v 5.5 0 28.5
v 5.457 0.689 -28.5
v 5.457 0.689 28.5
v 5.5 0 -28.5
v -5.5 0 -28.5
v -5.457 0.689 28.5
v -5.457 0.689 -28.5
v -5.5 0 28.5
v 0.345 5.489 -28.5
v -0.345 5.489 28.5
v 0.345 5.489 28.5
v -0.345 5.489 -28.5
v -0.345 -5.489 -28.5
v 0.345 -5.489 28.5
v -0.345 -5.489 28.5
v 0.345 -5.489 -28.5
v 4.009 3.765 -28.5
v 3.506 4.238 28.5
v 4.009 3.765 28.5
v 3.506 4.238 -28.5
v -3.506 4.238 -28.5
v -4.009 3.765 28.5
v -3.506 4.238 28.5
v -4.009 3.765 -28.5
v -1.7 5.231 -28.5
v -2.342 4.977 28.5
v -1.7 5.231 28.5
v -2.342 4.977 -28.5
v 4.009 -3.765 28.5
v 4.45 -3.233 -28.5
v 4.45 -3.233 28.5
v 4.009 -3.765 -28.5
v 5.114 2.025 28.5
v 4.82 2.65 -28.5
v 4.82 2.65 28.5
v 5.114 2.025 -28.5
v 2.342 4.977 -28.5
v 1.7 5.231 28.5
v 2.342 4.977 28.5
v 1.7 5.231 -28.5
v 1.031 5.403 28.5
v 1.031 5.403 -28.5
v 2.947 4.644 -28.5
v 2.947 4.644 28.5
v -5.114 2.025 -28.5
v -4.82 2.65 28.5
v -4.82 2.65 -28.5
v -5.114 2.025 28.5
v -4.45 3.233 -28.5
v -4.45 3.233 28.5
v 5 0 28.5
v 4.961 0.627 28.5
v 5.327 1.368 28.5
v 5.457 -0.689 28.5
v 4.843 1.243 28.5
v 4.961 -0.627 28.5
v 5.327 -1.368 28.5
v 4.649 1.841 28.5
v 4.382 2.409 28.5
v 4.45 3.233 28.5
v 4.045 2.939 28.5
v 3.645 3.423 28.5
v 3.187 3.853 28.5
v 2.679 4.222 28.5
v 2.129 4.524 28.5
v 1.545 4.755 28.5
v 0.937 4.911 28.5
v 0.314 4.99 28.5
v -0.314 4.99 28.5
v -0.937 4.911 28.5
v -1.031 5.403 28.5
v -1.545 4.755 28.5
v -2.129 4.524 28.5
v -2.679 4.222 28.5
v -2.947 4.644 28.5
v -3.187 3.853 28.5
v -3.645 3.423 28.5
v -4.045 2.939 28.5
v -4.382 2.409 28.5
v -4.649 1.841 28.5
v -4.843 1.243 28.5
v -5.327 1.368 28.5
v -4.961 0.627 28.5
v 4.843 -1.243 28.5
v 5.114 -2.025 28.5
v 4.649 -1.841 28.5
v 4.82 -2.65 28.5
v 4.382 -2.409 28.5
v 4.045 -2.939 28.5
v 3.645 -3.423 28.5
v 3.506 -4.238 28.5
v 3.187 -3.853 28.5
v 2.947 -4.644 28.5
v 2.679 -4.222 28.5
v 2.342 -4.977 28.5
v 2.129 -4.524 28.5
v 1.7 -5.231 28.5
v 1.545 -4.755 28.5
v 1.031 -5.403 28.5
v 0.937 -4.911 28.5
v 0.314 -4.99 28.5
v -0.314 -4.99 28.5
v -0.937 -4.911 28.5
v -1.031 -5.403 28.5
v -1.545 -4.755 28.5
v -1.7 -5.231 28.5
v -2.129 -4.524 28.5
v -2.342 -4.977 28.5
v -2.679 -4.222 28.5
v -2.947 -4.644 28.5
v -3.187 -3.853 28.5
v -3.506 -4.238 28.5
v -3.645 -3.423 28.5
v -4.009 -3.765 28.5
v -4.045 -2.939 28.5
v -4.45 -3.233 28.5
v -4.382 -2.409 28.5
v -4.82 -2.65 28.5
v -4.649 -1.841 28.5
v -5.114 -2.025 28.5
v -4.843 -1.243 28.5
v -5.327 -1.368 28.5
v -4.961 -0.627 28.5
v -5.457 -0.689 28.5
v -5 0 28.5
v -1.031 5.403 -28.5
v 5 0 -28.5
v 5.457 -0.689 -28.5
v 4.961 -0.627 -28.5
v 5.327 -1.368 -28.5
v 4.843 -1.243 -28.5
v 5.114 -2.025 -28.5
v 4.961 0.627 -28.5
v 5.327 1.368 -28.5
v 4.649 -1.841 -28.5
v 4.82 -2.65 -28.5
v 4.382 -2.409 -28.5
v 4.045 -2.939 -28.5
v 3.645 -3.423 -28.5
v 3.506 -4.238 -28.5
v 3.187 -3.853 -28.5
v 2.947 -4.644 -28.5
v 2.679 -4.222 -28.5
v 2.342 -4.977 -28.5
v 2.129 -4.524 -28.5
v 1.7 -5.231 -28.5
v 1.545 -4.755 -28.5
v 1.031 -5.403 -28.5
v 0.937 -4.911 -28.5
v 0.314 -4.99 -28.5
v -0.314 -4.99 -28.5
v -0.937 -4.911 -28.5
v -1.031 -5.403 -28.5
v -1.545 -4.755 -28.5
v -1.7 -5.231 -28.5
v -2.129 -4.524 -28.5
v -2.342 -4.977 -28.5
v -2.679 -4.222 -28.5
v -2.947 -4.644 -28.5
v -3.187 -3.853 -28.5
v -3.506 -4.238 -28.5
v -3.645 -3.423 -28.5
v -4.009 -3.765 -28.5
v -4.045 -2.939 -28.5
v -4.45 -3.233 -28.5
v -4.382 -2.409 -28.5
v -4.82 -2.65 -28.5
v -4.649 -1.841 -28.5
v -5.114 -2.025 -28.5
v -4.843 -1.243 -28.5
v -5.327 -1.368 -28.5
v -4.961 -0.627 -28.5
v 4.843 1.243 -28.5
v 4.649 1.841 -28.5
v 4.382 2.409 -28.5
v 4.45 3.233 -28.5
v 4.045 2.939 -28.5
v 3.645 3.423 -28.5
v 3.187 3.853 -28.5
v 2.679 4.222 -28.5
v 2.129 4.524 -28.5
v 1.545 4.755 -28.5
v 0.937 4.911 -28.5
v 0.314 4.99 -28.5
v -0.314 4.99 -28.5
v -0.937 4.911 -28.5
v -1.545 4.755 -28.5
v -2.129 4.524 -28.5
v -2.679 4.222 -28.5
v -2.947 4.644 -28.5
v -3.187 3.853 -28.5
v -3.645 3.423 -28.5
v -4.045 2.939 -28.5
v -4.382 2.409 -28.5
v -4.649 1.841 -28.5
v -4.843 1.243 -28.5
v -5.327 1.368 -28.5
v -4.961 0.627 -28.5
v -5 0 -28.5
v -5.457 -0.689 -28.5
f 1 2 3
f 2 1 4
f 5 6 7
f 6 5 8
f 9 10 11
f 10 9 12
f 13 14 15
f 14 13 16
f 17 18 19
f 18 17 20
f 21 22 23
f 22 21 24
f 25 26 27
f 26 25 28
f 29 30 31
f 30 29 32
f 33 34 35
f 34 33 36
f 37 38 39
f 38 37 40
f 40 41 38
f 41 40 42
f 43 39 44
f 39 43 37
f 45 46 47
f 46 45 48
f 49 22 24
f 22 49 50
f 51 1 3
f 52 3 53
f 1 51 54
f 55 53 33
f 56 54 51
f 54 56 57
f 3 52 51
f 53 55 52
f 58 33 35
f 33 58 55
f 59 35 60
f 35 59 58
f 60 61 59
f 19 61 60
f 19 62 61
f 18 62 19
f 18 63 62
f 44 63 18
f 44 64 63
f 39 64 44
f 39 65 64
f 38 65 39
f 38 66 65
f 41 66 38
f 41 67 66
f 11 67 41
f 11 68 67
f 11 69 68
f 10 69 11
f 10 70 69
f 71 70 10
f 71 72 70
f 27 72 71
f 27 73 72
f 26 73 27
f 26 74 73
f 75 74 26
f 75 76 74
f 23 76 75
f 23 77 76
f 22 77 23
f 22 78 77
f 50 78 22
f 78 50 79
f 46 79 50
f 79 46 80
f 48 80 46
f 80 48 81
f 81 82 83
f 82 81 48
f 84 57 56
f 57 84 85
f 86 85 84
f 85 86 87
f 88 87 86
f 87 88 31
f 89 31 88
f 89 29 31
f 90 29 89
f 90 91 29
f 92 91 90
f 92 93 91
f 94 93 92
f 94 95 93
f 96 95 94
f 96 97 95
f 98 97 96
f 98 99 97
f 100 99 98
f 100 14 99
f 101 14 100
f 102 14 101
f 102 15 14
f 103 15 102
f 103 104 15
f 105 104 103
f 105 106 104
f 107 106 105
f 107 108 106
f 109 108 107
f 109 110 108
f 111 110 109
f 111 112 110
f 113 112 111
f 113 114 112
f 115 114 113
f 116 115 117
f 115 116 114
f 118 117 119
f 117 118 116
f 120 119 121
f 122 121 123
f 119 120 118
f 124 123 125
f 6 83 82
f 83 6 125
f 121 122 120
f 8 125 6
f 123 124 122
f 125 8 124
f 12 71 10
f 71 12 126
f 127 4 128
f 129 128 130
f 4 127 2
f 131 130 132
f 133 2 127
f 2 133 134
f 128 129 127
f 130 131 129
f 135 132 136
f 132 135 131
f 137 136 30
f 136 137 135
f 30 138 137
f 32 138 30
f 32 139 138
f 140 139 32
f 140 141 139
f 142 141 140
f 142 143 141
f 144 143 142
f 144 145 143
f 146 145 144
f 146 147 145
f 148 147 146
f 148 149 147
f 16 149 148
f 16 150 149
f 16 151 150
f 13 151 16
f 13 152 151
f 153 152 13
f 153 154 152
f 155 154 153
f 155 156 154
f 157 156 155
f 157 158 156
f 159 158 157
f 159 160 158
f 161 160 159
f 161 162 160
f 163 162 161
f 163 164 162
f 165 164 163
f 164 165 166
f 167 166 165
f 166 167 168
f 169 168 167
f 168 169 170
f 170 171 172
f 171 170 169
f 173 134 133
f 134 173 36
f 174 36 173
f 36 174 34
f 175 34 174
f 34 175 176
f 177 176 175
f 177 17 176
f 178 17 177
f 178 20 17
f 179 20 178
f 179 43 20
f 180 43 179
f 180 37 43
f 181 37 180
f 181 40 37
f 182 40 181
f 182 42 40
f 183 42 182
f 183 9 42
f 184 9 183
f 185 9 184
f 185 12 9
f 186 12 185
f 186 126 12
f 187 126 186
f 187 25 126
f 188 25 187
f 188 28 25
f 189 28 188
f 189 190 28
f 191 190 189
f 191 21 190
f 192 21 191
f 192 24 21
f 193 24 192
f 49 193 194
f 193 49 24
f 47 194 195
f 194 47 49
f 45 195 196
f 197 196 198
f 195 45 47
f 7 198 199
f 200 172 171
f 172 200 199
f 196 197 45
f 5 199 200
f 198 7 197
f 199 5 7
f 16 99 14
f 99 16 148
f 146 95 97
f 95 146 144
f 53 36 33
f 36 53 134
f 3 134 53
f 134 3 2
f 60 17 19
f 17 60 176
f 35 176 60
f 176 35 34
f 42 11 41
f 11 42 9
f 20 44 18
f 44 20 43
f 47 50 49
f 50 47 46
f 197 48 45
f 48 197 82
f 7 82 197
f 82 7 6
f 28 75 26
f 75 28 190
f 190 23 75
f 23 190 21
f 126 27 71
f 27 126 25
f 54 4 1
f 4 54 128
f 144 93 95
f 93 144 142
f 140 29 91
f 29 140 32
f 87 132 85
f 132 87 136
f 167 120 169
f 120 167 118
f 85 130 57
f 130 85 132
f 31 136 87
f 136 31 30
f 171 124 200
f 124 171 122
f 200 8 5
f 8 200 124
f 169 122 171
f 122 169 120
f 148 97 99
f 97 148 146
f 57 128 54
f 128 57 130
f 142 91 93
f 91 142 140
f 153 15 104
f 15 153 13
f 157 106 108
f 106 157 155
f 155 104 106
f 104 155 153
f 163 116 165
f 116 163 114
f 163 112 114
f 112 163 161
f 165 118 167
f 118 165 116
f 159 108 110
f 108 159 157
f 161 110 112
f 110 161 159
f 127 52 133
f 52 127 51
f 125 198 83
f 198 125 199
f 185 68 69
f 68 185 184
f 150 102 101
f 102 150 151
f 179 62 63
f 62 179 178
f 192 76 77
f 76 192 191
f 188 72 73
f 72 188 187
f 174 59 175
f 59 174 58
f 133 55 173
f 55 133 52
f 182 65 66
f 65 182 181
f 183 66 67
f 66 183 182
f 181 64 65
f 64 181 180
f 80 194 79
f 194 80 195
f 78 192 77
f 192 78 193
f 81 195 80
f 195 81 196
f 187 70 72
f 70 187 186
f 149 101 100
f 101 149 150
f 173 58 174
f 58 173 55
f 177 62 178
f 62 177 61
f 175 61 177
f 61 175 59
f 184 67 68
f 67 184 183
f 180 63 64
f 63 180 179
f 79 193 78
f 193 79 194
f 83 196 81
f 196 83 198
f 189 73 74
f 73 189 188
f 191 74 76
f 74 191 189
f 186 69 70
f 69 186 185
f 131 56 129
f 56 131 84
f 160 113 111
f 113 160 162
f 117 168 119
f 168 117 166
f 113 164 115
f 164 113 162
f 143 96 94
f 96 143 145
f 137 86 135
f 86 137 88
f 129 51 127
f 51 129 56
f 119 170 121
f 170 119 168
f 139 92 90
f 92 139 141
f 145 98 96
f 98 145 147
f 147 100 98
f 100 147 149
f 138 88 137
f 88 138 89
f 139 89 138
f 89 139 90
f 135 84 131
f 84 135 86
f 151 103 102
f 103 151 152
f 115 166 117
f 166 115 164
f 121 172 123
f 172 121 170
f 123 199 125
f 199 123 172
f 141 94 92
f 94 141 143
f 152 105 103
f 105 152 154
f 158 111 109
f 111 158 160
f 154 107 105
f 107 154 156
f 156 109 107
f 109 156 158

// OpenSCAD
$fn = 50;


difference() {
	union() {
		translate(v = [0, 0, -28.5000000000]) {
			cylinder(h = 57, r = 5.5000000000);
		}
	}
	union() {
		translate(v = [0, 0, -100.0000000000]) {
			cylinder(h = 200, r = 5);
		}
	}
}
